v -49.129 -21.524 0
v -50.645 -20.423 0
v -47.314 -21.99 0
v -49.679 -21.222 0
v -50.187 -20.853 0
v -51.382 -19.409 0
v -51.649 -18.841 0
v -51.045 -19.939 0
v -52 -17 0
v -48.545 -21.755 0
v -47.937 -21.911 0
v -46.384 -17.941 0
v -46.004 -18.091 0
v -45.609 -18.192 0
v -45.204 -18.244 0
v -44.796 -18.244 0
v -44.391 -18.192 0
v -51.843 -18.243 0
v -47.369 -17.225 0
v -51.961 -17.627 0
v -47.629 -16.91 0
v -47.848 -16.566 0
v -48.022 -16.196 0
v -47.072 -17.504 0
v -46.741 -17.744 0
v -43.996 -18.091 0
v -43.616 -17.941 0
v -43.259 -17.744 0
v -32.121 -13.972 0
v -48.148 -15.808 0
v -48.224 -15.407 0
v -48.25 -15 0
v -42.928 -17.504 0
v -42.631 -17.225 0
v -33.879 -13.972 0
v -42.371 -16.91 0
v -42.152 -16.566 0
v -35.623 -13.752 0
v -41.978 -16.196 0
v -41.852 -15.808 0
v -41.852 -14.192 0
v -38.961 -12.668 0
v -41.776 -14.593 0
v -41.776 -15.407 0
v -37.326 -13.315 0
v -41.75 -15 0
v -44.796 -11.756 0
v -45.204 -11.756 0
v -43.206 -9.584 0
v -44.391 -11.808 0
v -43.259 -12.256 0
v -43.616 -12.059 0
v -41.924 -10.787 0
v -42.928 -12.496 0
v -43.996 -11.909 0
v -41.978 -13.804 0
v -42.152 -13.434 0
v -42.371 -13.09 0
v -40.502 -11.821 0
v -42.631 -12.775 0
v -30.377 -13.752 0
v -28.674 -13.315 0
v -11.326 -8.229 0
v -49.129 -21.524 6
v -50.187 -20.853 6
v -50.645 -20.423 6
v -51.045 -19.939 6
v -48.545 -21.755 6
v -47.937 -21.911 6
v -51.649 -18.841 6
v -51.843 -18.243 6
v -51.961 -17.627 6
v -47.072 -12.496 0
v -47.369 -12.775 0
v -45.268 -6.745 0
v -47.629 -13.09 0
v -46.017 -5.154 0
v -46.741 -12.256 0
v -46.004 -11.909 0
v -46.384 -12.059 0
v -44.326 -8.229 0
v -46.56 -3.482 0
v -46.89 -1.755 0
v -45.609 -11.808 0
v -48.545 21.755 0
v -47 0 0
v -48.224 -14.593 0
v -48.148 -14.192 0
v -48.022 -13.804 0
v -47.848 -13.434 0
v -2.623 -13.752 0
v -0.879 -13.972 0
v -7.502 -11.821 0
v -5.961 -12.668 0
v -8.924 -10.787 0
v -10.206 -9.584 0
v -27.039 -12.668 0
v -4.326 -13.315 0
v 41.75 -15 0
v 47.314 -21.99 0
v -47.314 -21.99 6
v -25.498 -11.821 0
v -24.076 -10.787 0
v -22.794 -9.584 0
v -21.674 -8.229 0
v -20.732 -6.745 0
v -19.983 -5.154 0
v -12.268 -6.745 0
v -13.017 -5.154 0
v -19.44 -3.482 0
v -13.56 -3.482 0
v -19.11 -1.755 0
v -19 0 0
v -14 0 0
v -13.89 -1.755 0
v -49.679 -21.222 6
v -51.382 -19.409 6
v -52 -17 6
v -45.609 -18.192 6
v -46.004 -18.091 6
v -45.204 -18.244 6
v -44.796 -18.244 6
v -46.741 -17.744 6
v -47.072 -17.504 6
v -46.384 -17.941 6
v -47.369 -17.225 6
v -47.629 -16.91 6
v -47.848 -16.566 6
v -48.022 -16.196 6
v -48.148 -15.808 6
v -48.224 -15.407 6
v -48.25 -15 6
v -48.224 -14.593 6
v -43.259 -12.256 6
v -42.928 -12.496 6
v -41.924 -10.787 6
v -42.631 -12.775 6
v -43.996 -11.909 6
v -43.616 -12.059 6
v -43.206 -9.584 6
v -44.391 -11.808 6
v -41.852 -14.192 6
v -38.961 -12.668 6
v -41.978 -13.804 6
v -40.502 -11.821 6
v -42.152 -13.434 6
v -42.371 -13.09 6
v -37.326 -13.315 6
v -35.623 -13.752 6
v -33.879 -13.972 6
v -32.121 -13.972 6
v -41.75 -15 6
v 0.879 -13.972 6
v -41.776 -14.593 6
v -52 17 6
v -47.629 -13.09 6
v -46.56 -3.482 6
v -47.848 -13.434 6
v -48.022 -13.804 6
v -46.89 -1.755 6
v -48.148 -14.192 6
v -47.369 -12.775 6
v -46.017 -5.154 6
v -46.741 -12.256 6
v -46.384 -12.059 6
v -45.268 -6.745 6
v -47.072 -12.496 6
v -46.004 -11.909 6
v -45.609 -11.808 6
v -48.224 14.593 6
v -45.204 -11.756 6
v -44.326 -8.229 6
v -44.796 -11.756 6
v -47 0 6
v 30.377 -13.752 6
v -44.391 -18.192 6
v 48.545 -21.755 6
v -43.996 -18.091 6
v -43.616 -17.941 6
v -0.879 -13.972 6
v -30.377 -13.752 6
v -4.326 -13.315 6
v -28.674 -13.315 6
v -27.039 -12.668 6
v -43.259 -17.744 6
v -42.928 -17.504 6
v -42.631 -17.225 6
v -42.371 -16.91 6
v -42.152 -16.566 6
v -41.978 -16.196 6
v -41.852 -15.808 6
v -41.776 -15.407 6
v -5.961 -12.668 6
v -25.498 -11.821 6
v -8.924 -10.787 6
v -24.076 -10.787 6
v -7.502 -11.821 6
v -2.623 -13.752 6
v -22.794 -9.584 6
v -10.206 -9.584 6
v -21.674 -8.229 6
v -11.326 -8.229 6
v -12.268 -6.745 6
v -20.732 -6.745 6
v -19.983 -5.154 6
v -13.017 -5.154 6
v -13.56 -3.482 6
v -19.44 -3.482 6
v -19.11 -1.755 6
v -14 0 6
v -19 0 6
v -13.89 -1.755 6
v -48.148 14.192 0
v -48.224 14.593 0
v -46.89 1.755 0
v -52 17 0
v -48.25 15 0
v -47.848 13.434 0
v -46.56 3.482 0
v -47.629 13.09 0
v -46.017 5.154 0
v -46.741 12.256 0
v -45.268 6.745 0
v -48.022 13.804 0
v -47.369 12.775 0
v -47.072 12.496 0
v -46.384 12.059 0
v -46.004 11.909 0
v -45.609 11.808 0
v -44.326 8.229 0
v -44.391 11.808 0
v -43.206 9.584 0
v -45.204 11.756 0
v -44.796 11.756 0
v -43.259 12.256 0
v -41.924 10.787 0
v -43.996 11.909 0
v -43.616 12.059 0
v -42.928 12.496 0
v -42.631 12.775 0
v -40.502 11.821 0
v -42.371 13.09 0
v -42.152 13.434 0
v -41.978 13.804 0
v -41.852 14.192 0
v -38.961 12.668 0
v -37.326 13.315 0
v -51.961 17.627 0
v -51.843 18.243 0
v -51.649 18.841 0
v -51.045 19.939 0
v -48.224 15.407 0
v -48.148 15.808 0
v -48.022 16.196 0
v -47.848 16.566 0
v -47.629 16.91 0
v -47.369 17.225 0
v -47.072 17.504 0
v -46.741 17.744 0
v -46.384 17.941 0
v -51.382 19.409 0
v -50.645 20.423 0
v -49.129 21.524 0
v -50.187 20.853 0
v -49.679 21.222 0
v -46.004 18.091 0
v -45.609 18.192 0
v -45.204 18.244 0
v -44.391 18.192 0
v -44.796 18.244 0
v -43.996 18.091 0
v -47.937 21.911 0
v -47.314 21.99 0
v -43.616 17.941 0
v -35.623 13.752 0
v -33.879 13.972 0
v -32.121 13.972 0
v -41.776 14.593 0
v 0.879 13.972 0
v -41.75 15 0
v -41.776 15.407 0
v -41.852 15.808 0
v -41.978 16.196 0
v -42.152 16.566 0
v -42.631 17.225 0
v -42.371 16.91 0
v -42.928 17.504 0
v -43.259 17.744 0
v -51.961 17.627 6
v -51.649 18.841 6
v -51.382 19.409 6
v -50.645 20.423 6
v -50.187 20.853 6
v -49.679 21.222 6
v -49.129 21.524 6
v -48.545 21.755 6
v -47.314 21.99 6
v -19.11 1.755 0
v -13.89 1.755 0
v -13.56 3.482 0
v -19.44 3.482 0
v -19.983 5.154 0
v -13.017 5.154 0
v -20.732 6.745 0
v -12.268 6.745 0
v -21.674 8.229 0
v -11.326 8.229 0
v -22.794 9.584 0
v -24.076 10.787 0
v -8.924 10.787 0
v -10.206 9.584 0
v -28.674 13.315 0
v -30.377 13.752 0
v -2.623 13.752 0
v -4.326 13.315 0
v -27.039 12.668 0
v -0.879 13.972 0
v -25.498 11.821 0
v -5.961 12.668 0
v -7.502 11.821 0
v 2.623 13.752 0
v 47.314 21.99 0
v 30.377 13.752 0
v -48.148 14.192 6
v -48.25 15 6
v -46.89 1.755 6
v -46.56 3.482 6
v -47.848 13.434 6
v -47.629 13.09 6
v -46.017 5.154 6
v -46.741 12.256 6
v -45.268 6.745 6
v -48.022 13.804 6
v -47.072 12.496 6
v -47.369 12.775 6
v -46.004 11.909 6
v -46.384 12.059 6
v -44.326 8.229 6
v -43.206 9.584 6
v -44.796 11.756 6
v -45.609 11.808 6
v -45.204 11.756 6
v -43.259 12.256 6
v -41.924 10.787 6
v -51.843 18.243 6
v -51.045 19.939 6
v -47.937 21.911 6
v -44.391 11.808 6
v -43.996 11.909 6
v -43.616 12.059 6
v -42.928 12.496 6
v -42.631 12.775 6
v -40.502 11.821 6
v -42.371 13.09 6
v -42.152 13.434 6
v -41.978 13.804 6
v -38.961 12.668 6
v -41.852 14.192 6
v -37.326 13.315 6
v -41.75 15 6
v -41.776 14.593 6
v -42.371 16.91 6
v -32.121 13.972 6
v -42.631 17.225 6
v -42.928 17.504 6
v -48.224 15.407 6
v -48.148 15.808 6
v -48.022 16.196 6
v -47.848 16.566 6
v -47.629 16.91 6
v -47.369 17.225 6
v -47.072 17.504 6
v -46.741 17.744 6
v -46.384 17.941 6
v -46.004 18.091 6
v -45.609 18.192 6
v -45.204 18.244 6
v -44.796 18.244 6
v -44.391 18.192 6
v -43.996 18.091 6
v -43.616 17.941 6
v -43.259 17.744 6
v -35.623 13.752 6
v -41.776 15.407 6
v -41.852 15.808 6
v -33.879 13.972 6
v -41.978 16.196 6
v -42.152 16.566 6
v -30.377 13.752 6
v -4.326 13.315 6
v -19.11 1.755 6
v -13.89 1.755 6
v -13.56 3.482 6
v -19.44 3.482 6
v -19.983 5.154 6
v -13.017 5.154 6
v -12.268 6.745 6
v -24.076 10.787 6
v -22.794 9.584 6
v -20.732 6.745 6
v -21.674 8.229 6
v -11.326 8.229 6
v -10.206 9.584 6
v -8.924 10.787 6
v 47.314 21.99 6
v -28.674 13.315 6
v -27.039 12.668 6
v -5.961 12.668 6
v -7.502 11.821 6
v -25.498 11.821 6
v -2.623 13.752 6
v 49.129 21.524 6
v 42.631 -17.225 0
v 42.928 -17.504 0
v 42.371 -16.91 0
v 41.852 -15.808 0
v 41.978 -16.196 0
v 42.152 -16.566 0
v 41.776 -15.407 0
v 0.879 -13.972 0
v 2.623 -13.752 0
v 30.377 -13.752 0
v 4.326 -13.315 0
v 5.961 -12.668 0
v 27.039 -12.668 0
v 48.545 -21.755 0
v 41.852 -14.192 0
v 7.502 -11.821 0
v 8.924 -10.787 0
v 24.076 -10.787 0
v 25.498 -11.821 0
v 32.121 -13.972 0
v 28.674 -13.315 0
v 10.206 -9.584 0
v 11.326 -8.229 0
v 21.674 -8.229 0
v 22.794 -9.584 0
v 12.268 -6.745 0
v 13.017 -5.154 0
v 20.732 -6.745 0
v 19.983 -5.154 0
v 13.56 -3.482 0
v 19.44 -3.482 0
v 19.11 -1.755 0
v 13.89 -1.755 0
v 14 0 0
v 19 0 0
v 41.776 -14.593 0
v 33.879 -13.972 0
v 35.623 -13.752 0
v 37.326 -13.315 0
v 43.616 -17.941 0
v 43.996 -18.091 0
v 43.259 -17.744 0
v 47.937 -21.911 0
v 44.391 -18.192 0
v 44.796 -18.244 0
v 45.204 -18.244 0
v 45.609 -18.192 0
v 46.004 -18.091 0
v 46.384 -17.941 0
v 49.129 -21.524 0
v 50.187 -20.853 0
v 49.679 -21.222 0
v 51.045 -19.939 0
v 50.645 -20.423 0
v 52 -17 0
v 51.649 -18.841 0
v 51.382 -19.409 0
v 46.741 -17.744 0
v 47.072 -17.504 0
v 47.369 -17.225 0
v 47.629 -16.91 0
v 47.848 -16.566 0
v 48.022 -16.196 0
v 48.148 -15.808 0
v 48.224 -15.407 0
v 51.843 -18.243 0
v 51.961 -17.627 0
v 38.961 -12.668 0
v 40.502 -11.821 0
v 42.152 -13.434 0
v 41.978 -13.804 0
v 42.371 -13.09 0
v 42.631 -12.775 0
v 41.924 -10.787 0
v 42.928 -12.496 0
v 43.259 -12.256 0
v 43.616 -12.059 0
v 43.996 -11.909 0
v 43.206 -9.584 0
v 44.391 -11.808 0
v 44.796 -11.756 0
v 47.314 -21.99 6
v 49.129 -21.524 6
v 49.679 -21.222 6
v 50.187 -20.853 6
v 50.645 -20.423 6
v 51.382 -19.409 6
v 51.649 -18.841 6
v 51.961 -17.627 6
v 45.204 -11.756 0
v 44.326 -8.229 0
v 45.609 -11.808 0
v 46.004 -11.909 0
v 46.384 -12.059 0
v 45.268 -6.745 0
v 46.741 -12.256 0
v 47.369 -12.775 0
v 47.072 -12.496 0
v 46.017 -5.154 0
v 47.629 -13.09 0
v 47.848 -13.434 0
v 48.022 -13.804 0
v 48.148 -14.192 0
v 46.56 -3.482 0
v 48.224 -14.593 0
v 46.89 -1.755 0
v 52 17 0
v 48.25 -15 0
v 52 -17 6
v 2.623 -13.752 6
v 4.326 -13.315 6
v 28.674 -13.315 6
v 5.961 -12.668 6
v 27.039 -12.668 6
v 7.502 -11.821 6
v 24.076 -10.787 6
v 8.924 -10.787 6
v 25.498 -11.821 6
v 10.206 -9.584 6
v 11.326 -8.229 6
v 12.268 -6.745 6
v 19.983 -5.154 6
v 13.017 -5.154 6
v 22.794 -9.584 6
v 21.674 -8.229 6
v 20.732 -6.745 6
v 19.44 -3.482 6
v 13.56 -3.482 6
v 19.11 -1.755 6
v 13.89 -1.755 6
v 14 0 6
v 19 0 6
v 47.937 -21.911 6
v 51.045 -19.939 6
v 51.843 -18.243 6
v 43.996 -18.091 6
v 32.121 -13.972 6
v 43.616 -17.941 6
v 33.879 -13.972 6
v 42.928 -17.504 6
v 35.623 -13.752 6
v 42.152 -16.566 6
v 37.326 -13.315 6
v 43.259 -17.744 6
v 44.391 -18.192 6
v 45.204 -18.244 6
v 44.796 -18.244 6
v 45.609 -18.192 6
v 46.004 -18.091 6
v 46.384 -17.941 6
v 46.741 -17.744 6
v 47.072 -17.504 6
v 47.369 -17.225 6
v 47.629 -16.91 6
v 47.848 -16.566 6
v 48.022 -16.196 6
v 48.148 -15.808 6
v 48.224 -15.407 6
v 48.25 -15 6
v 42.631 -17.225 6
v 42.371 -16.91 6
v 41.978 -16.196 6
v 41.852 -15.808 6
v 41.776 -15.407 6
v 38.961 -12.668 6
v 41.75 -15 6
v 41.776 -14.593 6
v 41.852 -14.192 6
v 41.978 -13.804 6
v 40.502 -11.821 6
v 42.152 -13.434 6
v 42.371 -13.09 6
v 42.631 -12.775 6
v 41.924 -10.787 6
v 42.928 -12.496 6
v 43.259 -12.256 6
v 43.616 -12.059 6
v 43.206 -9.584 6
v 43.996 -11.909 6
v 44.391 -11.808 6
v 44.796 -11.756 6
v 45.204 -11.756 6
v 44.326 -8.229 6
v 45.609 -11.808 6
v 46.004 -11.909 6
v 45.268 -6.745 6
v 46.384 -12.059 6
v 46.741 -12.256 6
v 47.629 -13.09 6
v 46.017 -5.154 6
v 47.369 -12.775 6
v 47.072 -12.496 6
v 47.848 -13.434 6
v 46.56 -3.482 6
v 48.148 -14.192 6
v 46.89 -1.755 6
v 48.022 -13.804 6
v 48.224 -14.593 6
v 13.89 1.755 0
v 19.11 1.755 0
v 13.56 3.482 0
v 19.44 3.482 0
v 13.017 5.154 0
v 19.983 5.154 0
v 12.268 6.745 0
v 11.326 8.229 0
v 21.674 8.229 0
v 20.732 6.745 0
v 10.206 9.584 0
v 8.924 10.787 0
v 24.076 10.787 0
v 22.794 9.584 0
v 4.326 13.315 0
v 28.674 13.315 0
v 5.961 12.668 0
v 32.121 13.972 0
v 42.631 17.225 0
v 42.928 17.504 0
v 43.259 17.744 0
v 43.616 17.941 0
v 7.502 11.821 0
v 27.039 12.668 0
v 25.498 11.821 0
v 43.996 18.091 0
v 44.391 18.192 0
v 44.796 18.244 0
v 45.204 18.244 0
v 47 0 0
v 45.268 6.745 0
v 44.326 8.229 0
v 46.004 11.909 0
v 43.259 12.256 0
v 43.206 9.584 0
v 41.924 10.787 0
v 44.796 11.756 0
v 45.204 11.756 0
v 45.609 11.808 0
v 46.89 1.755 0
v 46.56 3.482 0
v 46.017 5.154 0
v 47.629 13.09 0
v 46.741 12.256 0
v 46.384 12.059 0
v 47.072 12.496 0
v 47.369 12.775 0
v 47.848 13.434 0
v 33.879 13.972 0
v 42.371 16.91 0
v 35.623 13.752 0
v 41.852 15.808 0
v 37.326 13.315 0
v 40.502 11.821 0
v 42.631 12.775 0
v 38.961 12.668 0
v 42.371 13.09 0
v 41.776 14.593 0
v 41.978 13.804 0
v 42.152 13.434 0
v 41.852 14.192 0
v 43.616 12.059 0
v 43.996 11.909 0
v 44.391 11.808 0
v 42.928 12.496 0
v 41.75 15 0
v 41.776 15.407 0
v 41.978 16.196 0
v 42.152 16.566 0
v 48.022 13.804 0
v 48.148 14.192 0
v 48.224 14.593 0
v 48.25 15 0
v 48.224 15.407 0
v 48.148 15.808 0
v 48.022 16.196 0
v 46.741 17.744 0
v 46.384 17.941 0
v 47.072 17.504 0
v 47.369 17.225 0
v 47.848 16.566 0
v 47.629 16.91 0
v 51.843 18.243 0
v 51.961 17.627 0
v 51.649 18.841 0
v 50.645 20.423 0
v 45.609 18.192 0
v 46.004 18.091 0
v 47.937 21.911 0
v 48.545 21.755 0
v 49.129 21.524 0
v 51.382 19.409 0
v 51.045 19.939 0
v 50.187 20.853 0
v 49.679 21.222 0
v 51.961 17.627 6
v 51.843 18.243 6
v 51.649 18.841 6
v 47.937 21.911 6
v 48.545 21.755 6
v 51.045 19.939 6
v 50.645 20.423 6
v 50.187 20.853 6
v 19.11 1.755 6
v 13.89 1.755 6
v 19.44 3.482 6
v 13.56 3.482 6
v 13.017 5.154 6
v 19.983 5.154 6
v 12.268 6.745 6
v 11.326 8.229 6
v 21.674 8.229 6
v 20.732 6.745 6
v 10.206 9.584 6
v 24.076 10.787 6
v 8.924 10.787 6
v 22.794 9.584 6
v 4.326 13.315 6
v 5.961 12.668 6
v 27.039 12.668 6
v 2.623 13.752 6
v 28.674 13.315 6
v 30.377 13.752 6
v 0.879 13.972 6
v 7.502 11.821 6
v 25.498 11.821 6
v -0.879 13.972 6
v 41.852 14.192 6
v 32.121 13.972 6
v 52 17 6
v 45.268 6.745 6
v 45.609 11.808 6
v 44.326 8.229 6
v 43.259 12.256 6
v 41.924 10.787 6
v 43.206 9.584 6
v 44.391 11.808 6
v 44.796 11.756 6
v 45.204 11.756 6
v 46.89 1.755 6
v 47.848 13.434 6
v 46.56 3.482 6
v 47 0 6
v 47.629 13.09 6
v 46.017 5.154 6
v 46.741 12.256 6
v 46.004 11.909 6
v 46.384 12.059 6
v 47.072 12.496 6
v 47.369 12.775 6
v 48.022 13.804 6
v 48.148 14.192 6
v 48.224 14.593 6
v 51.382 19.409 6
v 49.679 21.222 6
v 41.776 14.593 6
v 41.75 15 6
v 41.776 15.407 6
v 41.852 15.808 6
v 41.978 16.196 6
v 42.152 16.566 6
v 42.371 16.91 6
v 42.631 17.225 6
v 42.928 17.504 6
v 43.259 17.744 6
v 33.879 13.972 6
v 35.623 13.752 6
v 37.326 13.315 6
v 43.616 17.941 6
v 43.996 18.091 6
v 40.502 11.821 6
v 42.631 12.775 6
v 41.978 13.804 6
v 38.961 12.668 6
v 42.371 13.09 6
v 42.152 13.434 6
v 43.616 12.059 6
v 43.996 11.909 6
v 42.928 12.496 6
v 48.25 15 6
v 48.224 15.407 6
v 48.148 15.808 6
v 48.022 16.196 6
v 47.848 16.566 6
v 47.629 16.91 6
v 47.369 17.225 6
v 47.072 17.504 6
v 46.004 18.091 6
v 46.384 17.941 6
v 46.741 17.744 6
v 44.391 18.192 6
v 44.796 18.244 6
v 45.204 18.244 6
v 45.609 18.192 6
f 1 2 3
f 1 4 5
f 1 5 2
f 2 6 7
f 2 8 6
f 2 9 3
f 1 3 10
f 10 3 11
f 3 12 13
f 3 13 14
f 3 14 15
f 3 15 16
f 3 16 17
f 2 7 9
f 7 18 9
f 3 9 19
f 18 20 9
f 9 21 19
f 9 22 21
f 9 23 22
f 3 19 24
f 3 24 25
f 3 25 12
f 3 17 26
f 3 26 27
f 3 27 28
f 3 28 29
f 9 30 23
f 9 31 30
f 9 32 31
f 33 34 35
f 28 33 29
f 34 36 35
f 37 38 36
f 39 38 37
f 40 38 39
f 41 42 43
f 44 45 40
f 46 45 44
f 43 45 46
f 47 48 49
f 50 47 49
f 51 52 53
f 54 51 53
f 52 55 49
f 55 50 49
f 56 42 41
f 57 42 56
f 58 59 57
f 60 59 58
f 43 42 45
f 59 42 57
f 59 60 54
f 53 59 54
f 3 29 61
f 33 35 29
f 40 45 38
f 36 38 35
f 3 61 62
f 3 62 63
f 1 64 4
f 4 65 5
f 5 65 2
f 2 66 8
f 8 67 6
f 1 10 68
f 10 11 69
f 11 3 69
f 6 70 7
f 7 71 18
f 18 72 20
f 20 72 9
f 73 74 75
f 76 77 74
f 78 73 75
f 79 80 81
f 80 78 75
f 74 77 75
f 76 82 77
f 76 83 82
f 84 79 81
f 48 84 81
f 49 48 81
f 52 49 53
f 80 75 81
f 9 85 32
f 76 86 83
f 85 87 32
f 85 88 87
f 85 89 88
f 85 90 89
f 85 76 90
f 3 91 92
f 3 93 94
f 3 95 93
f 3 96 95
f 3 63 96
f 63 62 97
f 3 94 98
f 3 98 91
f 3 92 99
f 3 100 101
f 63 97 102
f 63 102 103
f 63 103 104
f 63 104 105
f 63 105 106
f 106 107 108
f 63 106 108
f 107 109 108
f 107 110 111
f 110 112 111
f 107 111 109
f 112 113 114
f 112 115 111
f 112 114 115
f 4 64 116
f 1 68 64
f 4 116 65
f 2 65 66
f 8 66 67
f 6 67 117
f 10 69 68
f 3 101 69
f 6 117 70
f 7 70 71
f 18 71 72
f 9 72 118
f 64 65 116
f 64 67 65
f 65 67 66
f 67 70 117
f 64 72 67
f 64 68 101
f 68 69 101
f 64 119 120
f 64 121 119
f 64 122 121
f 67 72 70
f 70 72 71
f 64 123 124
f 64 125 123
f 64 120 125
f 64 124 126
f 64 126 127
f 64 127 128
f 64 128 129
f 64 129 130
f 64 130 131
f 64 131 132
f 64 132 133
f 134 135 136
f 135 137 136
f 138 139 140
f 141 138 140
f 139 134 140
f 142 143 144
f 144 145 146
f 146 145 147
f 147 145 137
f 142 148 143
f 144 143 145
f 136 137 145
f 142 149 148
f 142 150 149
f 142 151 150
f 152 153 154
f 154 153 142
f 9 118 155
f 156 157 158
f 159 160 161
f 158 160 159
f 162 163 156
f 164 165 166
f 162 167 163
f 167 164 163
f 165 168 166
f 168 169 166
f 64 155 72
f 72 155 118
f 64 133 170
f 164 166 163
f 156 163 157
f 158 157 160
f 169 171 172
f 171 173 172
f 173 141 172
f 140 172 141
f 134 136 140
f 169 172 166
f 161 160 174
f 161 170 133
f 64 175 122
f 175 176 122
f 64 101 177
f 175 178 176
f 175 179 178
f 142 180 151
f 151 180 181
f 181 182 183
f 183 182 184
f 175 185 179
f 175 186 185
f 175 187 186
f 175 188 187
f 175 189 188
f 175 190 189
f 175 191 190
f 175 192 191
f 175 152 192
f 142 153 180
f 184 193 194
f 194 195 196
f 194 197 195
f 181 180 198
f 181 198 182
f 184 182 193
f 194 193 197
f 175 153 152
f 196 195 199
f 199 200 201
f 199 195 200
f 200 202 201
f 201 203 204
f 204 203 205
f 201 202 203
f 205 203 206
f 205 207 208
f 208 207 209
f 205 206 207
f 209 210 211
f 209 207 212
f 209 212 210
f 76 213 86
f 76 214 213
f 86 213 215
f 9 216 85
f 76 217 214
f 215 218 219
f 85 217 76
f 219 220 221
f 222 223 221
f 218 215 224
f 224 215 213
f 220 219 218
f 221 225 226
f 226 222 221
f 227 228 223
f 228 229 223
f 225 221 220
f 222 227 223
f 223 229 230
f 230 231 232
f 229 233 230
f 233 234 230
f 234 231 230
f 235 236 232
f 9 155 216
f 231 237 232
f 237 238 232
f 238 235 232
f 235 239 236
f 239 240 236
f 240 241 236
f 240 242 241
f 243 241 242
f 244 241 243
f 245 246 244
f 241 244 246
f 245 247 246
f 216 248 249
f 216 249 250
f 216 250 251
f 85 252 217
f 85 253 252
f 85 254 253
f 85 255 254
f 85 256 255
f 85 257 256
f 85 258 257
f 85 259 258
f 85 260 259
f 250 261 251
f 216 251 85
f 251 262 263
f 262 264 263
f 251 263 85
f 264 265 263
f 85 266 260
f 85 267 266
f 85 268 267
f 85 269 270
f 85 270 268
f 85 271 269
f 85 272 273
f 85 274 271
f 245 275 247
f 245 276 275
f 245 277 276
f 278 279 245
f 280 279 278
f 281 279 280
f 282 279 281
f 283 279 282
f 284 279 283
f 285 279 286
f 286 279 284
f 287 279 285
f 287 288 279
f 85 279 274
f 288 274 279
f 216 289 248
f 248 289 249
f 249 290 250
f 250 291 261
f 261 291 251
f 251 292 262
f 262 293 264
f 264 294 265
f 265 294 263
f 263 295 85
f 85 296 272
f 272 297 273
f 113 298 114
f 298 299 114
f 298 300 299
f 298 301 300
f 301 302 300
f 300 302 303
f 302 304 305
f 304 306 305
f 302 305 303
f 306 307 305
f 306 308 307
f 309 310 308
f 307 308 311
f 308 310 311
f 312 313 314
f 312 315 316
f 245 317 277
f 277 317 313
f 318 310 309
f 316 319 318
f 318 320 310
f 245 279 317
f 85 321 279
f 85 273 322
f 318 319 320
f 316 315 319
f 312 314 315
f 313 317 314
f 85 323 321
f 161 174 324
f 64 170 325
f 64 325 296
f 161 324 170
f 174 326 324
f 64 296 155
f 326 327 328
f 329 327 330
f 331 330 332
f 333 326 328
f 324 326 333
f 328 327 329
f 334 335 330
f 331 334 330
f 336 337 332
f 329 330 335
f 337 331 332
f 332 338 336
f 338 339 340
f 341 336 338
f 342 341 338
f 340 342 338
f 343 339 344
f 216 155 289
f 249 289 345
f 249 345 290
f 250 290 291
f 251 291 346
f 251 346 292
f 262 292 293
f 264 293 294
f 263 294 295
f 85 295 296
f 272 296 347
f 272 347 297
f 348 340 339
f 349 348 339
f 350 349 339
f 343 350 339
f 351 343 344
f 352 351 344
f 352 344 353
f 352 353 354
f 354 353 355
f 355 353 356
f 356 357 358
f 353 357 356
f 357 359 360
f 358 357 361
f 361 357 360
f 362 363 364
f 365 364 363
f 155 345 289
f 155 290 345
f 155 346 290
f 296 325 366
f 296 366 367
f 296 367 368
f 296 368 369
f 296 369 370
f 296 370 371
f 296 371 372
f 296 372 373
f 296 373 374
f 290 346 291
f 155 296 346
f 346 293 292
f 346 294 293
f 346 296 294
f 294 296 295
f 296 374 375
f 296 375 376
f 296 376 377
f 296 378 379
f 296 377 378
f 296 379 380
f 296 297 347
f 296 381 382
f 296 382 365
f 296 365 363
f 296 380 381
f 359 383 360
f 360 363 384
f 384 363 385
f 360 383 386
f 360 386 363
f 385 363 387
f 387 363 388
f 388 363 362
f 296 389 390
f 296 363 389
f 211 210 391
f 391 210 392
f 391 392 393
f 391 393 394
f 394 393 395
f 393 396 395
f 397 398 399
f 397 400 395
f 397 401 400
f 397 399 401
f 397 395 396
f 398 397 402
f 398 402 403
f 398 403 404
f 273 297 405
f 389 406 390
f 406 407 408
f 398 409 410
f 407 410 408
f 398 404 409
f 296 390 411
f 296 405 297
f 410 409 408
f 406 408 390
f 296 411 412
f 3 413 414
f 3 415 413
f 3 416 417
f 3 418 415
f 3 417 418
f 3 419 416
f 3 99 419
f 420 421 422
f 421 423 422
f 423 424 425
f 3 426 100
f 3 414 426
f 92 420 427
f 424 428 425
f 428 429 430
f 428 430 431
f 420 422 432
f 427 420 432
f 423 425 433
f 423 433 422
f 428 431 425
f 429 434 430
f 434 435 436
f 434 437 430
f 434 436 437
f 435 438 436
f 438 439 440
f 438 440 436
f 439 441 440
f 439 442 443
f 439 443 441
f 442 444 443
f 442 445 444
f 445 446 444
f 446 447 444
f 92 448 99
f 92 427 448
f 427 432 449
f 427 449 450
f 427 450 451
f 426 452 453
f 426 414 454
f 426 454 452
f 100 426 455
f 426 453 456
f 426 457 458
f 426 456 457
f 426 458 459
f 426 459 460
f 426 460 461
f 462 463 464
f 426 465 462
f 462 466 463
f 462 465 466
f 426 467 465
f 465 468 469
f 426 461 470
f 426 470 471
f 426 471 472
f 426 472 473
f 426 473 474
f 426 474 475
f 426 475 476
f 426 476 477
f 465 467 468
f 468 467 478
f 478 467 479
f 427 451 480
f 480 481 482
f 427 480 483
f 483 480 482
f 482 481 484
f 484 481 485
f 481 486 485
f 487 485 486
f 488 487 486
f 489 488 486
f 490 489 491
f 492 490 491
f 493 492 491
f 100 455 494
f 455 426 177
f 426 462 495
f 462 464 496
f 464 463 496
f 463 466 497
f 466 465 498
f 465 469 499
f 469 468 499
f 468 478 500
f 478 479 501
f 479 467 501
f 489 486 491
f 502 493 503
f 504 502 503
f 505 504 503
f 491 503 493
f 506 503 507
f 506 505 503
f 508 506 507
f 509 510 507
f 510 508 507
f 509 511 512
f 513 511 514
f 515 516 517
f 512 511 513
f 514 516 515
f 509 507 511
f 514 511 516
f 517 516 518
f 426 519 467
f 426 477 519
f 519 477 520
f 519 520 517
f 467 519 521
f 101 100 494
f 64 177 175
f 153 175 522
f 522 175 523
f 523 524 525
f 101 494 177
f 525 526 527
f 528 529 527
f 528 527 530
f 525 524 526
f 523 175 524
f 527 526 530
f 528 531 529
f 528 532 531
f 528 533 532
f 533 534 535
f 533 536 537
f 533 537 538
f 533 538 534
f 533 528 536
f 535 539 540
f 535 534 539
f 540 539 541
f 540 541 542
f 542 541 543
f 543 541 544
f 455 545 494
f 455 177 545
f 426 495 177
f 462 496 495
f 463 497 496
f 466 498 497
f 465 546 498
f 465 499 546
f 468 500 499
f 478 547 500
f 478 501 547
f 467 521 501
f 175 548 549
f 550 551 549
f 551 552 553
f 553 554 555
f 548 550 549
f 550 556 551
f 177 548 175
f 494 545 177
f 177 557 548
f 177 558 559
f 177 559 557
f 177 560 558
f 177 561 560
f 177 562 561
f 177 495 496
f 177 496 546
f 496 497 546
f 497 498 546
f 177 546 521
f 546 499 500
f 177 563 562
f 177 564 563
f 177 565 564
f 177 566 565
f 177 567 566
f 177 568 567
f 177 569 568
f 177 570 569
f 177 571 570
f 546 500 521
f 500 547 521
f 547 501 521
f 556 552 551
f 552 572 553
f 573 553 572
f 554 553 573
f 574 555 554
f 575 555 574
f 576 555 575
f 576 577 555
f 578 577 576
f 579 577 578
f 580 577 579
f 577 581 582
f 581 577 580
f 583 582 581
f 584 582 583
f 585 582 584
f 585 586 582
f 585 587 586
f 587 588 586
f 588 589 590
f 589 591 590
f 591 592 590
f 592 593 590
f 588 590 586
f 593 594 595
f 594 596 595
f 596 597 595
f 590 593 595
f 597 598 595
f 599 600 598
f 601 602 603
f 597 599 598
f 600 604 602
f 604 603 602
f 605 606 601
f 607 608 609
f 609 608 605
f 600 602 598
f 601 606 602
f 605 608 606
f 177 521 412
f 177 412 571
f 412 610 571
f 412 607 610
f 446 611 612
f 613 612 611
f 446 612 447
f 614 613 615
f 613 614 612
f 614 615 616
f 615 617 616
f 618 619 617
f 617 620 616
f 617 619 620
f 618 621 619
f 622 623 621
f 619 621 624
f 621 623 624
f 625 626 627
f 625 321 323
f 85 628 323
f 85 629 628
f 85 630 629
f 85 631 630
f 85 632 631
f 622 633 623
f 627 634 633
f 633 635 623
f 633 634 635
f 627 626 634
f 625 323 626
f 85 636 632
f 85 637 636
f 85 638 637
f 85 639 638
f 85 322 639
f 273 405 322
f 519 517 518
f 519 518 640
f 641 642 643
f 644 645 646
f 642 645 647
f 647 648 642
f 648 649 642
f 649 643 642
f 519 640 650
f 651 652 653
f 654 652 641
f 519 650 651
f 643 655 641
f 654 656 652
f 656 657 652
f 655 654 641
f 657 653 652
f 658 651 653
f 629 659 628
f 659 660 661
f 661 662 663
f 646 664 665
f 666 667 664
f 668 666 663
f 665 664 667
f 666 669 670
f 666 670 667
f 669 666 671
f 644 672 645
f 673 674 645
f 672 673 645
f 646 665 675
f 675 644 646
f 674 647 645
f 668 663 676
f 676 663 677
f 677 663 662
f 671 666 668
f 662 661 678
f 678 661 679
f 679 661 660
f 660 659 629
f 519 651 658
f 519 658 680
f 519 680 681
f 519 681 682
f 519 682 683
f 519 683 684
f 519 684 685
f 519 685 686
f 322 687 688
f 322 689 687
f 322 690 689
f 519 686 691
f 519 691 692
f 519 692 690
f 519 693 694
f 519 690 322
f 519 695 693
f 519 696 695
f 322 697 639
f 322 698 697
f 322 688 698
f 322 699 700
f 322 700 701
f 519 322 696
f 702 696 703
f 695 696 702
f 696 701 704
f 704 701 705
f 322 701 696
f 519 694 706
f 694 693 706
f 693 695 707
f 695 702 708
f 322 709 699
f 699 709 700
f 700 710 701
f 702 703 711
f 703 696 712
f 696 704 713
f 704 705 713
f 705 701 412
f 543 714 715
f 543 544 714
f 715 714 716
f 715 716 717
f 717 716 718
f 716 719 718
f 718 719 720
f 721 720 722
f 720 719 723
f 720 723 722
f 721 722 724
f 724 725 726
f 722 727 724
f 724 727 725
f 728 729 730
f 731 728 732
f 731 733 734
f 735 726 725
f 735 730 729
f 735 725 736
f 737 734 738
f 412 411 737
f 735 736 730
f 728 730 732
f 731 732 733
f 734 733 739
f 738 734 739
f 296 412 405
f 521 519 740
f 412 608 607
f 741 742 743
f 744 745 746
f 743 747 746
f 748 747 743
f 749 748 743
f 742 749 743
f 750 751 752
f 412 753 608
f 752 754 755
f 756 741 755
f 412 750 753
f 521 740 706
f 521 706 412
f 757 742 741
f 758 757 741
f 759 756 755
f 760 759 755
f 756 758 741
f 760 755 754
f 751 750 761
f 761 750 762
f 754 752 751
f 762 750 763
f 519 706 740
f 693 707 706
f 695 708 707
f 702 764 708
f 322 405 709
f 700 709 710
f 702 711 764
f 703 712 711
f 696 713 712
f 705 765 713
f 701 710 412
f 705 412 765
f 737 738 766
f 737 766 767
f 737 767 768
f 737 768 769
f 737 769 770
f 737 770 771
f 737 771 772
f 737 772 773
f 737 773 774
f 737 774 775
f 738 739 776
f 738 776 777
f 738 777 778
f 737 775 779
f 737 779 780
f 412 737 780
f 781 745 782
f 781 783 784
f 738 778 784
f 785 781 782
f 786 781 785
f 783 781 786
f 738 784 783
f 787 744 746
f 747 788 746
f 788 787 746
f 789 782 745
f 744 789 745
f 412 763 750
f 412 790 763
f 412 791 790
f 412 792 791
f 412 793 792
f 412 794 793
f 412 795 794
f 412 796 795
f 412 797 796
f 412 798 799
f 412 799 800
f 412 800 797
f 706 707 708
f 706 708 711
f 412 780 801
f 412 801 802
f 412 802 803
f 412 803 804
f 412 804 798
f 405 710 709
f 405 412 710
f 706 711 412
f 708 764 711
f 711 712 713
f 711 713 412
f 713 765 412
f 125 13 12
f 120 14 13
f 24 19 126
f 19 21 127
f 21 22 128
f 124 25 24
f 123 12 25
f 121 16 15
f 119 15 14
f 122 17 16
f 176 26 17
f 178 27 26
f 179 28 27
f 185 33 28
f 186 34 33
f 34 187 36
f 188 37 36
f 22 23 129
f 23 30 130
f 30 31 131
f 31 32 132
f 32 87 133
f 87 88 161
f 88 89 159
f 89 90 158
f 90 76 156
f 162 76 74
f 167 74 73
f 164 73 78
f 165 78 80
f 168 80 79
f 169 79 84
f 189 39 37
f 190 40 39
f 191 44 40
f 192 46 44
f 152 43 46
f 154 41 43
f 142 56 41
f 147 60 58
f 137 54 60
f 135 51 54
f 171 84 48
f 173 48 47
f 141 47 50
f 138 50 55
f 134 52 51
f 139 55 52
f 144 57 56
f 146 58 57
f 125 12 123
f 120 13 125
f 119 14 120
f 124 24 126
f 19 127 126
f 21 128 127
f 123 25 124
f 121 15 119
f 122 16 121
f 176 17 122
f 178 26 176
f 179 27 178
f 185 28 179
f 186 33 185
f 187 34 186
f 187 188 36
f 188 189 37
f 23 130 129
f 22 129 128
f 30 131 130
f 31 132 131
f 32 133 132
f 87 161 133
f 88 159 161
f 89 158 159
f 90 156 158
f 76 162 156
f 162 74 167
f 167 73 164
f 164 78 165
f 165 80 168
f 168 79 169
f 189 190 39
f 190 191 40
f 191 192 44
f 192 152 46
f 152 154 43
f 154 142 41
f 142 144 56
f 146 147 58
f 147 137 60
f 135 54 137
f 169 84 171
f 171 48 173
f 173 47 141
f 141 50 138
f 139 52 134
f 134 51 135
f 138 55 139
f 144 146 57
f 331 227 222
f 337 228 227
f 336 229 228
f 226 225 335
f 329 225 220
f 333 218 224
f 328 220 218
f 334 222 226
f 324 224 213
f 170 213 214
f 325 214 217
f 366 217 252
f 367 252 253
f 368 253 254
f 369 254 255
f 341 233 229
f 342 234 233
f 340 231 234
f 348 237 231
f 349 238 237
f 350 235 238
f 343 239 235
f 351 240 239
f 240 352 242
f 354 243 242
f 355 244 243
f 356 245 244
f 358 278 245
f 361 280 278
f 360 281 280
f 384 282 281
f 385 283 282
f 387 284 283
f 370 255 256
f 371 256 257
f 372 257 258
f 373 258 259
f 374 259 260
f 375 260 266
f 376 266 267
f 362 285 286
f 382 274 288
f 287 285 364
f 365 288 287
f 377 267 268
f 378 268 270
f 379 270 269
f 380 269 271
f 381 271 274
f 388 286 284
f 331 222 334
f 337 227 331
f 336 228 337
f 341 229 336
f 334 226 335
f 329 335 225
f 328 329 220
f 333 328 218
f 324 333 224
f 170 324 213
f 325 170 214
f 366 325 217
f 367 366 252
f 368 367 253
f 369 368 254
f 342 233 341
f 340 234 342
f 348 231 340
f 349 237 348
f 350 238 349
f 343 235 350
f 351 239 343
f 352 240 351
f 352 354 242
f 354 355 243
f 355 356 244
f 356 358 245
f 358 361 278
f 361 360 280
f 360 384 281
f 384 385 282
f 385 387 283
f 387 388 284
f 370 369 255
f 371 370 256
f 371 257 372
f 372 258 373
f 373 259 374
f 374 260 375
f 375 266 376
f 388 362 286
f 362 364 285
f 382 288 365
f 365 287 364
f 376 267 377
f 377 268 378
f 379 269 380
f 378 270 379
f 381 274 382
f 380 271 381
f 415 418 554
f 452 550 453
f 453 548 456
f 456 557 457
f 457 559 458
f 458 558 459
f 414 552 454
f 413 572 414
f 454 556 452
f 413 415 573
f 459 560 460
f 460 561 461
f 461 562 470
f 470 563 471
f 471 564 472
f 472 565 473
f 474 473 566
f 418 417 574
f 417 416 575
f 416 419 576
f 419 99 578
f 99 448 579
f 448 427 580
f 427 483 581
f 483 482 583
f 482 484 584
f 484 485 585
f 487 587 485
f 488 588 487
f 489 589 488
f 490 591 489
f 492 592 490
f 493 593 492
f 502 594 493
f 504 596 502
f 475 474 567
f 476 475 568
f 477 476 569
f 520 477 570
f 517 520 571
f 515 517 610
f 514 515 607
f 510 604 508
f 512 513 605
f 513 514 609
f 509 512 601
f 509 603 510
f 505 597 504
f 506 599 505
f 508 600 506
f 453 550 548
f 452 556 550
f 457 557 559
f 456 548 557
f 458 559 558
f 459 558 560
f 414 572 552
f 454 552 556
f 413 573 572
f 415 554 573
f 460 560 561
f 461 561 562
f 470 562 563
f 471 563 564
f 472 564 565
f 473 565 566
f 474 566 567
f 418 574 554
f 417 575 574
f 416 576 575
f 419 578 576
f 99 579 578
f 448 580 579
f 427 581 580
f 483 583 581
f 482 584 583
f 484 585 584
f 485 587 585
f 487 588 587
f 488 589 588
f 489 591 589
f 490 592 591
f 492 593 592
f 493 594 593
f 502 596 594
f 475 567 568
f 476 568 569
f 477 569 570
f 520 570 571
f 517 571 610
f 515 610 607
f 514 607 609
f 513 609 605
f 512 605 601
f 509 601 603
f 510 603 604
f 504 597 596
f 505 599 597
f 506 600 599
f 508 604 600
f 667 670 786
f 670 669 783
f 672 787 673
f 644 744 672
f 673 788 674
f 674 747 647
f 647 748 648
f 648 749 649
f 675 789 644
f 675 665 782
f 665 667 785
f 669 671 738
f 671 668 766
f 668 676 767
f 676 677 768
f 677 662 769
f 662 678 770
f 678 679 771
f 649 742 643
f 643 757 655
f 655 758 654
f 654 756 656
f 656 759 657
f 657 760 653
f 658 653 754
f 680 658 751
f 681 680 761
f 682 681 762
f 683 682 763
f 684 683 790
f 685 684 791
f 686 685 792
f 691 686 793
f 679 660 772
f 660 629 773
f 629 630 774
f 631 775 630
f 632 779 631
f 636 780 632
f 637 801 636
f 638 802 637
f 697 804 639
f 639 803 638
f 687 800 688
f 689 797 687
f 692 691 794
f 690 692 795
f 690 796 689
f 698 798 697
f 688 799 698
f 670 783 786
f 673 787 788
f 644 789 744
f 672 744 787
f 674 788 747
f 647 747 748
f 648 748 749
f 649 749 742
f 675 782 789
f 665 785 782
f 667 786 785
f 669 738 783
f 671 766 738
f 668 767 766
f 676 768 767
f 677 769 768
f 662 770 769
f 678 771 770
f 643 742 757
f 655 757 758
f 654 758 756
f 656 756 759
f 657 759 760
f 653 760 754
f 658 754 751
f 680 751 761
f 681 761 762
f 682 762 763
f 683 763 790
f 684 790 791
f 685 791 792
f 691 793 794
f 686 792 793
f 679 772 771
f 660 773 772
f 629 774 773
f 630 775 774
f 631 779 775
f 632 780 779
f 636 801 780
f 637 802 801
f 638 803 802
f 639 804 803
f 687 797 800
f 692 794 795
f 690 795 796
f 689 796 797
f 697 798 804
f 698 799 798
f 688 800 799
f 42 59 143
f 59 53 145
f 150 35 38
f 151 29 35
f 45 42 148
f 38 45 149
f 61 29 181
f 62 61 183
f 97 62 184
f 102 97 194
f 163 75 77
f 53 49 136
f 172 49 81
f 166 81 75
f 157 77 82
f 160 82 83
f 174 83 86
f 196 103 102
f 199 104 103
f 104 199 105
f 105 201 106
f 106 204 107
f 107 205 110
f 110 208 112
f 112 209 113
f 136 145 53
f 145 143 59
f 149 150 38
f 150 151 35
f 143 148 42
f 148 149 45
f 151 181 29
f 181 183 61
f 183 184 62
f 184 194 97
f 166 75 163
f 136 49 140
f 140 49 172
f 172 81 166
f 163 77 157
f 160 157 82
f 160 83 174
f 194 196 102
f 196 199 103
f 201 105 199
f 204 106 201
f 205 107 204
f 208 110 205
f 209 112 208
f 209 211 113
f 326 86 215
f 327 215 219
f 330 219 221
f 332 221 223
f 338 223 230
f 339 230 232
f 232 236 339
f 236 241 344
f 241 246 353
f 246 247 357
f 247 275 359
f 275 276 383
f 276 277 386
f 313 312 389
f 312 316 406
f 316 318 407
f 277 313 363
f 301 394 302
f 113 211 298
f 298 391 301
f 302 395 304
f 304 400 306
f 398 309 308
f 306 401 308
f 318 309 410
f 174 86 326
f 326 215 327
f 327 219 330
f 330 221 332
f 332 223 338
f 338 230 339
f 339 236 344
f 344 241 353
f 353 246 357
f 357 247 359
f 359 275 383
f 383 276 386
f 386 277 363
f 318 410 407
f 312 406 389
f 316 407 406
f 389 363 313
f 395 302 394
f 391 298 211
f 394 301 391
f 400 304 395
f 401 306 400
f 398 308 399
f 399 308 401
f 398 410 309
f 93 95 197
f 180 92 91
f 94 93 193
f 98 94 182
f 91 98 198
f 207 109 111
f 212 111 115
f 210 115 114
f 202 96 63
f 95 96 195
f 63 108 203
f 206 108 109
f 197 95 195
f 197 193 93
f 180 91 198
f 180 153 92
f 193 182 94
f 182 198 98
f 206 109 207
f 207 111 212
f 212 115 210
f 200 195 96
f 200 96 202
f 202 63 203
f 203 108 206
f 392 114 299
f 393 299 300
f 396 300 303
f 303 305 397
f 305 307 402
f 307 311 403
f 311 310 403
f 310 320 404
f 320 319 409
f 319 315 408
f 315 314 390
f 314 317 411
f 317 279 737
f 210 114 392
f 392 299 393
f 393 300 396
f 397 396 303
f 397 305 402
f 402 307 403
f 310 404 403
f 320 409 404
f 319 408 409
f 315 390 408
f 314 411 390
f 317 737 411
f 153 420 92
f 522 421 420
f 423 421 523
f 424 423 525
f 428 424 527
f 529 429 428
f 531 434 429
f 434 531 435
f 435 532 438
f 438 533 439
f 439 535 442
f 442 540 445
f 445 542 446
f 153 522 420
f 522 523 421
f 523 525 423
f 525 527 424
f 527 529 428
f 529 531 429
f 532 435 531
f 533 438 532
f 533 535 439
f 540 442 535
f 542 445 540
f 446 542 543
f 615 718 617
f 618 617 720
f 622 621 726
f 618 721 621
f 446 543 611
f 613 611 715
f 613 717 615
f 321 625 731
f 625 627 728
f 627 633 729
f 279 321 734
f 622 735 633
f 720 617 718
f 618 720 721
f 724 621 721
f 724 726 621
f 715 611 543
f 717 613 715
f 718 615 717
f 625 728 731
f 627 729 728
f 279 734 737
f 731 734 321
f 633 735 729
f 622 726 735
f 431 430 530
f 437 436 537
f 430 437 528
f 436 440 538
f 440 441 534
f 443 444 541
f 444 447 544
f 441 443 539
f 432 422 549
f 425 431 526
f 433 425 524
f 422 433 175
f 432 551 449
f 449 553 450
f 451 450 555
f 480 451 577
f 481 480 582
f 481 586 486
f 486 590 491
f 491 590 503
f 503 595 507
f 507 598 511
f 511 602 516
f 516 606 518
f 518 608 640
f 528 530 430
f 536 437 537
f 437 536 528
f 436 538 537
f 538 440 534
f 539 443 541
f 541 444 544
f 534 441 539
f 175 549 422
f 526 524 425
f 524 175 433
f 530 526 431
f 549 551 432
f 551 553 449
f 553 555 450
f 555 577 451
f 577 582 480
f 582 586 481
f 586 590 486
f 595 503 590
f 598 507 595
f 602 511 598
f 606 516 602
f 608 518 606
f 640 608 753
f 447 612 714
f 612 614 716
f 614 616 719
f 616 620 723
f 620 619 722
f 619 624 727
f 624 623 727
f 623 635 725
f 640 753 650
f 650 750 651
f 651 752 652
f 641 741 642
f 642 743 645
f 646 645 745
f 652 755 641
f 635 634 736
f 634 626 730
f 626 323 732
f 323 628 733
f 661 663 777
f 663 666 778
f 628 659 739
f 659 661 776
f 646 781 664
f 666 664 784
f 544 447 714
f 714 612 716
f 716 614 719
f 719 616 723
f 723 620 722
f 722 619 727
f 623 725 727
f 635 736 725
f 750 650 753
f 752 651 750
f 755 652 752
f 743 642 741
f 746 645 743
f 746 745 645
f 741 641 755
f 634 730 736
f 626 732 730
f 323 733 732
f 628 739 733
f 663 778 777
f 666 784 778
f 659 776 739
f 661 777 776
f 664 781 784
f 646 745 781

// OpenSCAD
$fn = 50;

difference() {
	union() {
		hull() {
			translate(v = [-47.0, 17.0, 0]) {
				cylinder(h = 6, r = 5);
			}
			translate(v = [47.0, 17.0, 0]) {
				cylinder(h = 6, r = 5);
			}
			translate(v = [-47.0, -17.0, 0]) {
				cylinder(h = 6, r = 5);
			}
			translate(v = [47.0, -17.0, 0]) {
				cylinder(h = 6, r = 5);
			}
		}
	}
	union() {
		translate(v = [-45.0, -15.0, -100.0]) {
			cylinder(h = 200, r = 3.25);
		}
		translate(v = [-45.0, 15.0, -100.0]) {
			cylinder(h = 200, r = 3.25);
		}
		translate(v = [45.0, -15.0, -100.0]) {
			cylinder(h = 200, r = 3.25);
		}
		translate(v = [45.0, 15.0, -100.0]) {
			cylinder(h = 200, r = 3.25);
		}
		translate(v = [-45.0, -15.0, -100.0]) {
			cylinder(h = 200, r = 1.8);
		}
		translate(v = [-45.0, 15.0, -100.0]) {
			cylinder(h = 200, r = 1.8);
		}
		translate(v = [45.0, -15.0, -100.0]) {
			cylinder(h = 200, r = 1.8);
		}
		translate(v = [45.0, 15.0, -100.0]) {
			cylinder(h = 200, r = 1.8);
		}
		translate(v = [-33.0, 0, 0.0]) {
			cylinder(h = 6, r = 14.0);
		}
		cylinder(h = 6, r = 14.0);
		translate(v = [33.0, 0, 0.0]) {
			cylinder(h = 6, r = 14.0);
		}
	}
}
